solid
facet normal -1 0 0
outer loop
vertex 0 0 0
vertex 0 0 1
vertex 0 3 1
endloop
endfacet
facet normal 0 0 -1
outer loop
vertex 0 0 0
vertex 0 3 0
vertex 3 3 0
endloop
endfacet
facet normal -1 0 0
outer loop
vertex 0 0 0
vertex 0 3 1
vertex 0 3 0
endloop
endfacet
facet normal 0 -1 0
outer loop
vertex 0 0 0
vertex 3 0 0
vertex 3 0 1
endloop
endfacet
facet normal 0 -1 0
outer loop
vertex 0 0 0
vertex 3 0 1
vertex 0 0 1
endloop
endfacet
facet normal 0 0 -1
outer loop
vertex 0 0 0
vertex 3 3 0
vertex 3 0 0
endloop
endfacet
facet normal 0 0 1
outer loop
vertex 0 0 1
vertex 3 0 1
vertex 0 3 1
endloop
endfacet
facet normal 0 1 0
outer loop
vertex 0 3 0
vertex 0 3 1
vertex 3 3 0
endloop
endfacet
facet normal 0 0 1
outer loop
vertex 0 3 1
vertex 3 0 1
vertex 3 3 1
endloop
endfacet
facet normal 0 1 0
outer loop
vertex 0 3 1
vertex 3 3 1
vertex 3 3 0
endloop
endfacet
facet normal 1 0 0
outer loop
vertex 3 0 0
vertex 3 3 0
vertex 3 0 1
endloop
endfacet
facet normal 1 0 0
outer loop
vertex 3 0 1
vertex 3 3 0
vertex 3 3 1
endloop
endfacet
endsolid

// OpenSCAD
/* Warning, this is a very basic generator with a lot of approximation 
input data : [VDFN, 3PW, 3x3x1.0mm, 8, , B, C04-00568B]
generated by com.zoubworld.electronics.cad.model3d.Basic
Date : Sun Feb 15 10:50:49 CET 2026
*/

//body
color("black")
translate([0,0,0])
cube([3.0,3.0,1.0], center=false);
